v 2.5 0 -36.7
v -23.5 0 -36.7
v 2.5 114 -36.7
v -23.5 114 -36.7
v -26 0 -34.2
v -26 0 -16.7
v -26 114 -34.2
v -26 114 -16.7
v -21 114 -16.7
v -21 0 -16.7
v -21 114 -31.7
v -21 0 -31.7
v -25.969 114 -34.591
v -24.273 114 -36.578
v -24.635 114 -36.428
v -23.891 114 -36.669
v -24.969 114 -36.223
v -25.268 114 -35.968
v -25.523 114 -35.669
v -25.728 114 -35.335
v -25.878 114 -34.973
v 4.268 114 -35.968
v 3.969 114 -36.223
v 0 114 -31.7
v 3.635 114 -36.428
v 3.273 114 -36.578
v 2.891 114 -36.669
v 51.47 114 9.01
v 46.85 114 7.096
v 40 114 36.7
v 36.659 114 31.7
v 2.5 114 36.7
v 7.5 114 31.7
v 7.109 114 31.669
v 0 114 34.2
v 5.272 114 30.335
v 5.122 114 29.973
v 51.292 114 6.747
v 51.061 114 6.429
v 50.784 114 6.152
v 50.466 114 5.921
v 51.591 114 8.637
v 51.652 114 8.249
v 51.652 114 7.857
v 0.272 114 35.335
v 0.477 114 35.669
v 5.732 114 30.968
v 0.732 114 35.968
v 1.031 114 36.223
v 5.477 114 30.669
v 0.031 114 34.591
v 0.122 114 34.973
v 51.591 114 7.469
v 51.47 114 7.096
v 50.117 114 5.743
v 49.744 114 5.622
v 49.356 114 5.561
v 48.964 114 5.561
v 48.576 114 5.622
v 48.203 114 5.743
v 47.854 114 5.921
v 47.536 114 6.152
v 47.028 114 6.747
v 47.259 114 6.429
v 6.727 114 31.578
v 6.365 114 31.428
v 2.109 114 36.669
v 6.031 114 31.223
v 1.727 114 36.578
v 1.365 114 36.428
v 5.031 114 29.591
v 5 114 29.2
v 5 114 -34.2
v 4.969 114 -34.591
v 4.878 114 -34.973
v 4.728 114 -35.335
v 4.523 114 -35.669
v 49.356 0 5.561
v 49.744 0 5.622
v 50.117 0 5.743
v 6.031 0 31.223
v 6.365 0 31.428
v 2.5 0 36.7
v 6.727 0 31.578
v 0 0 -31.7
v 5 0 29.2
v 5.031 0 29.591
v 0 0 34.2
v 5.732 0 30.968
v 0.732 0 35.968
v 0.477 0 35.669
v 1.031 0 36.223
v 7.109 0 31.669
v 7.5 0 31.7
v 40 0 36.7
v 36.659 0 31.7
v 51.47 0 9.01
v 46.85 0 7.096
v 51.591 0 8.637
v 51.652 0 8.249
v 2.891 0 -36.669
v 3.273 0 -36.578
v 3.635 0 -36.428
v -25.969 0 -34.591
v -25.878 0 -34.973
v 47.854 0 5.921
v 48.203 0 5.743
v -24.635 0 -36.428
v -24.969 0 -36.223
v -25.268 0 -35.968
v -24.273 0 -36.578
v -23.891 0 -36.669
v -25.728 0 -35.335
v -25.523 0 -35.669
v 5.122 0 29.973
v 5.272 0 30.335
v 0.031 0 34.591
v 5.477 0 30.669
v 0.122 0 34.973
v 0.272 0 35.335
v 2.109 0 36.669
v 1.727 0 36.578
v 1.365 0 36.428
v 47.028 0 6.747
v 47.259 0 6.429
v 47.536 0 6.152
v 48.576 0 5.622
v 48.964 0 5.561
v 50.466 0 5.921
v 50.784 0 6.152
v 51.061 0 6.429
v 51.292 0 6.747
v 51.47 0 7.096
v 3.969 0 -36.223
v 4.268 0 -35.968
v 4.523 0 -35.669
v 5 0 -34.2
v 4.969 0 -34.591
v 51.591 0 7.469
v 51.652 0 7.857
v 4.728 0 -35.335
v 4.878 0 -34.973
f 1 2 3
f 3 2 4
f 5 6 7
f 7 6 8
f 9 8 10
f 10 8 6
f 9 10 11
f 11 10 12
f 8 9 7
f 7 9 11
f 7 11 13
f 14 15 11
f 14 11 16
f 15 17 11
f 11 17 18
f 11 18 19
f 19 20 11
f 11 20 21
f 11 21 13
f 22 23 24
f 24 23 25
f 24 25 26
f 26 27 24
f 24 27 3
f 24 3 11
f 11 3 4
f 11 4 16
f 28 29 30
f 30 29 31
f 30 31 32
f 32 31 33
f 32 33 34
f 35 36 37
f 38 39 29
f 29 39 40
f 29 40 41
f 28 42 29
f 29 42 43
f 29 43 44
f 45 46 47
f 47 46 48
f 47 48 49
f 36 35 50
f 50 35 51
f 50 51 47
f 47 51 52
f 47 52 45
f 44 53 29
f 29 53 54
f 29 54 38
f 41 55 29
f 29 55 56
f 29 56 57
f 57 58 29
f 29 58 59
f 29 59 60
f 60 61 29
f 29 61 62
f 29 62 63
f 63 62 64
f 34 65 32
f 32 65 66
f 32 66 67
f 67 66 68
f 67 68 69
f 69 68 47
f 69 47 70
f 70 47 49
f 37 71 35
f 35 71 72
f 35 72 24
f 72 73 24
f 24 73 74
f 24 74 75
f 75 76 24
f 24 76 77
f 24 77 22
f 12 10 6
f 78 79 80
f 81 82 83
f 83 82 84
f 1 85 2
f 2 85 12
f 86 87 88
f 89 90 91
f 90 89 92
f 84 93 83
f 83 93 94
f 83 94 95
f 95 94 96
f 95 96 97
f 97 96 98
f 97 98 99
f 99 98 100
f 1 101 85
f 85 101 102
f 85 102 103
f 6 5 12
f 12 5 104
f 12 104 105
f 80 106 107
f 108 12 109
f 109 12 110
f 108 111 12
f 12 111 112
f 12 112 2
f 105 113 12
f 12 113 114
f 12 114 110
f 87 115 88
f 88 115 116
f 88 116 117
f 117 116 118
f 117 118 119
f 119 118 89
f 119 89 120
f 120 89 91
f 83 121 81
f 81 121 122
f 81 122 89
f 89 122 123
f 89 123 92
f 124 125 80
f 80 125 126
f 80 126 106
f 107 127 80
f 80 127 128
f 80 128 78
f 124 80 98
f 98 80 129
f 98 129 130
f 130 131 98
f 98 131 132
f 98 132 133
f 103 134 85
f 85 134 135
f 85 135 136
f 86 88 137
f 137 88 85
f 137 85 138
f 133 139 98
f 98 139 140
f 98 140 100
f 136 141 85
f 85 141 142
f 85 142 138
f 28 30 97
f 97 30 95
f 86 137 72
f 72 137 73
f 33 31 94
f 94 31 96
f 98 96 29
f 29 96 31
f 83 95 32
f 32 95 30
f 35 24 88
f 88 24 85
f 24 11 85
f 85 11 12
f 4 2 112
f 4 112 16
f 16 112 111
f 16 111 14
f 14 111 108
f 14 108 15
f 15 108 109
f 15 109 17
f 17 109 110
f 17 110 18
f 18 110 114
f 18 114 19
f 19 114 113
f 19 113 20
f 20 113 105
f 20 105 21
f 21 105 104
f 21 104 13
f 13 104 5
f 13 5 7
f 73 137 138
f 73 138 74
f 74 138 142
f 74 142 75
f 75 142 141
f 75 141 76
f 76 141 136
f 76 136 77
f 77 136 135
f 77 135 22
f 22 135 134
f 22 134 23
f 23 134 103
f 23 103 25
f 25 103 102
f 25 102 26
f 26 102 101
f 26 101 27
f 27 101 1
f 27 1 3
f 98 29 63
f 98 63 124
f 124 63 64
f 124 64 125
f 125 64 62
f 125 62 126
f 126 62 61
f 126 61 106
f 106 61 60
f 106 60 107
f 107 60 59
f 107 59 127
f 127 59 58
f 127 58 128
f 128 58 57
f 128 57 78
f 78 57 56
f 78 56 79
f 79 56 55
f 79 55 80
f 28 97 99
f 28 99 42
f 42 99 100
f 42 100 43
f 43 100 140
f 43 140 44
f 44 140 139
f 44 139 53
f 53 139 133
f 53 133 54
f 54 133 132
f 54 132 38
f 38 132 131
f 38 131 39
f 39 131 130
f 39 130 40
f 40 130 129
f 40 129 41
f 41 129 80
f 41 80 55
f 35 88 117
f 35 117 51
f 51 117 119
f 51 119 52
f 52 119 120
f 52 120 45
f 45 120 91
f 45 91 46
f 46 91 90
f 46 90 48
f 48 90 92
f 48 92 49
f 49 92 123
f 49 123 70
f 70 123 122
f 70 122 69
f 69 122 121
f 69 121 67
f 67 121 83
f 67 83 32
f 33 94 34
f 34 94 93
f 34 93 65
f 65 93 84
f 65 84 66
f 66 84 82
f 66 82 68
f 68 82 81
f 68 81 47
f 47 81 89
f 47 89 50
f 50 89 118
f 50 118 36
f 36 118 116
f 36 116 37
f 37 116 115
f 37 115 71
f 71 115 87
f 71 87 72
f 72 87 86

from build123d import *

# Parameters (mm, degrees)
EXTRUDE_1_DEPTH = 114
FILLET_5_R      = 2.5
FILLET_6_R      = 2.5
FILLET_8_R      = 2.5
FILLET_10_R     = 2.5
FILLET_11_R     = 2.5


with BuildPart() as part:
    # ｽｹｯﾁ1 → ﾎﾞｽ - 押し出し1 (new body)
    with BuildSketch(Plane(origin=(0, 0, 0), x_dir=(1, 0, 0), z_dir=(0, 1, 0))):
        Polygon((47.807009209, -4.786582838), (36.65910681, -31.7), (5, -31.7), (5, 36.7), (-26, 36.7), (-26, 16.7), (-21, 16.7), (-21, 31.7), (0, 31.7), (0, -36.7), (40, -36.7), (52.426406871, -6.7), align=None)
    extrude(amount=EXTRUDE_1_DEPTH)

    # ﾌｨﾚｯﾄ5
    fillet_5_edges = [part.edges().sort_by_distance(p)[0] for p in [
        (-26, 57, -36.7),
    ]]
    fillet(fillet_5_edges, radius=FILLET_5_R)

    # ﾌｨﾚｯﾄ6
    fillet_6_edges = [part.edges().sort_by_distance(p)[0] for p in [
        (5, 57, -36.7),
    ]]
    fillet(fillet_6_edges, radius=FILLET_6_R)

    # ﾌｨﾚｯﾄ8
    fillet_8_edges = [part.edges().sort_by_distance(p)[0] for p in [
        (52.426406871, 57, 6.7),
        (47.807009209, 57, 4.786582838),
    ]]
    fillet(fillet_8_edges, radius=FILLET_8_R - 0.0001)  # a hair under: the kernel refuses the full size

    # ﾌｨﾚｯﾄ10
    fillet_10_edges = [part.edges().sort_by_distance(p)[0] for p in [
        (0, 57, 36.7),
    ]]
    fillet(fillet_10_edges, radius=FILLET_10_R)

    # ﾌｨﾚｯﾄ11
    fillet_11_edges = [part.edges().sort_by_distance(p)[0] for p in [
        (5, 57, 31.7),
    ]]
    fillet(fillet_11_edges, radius=FILLET_11_R)


solid = part.part
